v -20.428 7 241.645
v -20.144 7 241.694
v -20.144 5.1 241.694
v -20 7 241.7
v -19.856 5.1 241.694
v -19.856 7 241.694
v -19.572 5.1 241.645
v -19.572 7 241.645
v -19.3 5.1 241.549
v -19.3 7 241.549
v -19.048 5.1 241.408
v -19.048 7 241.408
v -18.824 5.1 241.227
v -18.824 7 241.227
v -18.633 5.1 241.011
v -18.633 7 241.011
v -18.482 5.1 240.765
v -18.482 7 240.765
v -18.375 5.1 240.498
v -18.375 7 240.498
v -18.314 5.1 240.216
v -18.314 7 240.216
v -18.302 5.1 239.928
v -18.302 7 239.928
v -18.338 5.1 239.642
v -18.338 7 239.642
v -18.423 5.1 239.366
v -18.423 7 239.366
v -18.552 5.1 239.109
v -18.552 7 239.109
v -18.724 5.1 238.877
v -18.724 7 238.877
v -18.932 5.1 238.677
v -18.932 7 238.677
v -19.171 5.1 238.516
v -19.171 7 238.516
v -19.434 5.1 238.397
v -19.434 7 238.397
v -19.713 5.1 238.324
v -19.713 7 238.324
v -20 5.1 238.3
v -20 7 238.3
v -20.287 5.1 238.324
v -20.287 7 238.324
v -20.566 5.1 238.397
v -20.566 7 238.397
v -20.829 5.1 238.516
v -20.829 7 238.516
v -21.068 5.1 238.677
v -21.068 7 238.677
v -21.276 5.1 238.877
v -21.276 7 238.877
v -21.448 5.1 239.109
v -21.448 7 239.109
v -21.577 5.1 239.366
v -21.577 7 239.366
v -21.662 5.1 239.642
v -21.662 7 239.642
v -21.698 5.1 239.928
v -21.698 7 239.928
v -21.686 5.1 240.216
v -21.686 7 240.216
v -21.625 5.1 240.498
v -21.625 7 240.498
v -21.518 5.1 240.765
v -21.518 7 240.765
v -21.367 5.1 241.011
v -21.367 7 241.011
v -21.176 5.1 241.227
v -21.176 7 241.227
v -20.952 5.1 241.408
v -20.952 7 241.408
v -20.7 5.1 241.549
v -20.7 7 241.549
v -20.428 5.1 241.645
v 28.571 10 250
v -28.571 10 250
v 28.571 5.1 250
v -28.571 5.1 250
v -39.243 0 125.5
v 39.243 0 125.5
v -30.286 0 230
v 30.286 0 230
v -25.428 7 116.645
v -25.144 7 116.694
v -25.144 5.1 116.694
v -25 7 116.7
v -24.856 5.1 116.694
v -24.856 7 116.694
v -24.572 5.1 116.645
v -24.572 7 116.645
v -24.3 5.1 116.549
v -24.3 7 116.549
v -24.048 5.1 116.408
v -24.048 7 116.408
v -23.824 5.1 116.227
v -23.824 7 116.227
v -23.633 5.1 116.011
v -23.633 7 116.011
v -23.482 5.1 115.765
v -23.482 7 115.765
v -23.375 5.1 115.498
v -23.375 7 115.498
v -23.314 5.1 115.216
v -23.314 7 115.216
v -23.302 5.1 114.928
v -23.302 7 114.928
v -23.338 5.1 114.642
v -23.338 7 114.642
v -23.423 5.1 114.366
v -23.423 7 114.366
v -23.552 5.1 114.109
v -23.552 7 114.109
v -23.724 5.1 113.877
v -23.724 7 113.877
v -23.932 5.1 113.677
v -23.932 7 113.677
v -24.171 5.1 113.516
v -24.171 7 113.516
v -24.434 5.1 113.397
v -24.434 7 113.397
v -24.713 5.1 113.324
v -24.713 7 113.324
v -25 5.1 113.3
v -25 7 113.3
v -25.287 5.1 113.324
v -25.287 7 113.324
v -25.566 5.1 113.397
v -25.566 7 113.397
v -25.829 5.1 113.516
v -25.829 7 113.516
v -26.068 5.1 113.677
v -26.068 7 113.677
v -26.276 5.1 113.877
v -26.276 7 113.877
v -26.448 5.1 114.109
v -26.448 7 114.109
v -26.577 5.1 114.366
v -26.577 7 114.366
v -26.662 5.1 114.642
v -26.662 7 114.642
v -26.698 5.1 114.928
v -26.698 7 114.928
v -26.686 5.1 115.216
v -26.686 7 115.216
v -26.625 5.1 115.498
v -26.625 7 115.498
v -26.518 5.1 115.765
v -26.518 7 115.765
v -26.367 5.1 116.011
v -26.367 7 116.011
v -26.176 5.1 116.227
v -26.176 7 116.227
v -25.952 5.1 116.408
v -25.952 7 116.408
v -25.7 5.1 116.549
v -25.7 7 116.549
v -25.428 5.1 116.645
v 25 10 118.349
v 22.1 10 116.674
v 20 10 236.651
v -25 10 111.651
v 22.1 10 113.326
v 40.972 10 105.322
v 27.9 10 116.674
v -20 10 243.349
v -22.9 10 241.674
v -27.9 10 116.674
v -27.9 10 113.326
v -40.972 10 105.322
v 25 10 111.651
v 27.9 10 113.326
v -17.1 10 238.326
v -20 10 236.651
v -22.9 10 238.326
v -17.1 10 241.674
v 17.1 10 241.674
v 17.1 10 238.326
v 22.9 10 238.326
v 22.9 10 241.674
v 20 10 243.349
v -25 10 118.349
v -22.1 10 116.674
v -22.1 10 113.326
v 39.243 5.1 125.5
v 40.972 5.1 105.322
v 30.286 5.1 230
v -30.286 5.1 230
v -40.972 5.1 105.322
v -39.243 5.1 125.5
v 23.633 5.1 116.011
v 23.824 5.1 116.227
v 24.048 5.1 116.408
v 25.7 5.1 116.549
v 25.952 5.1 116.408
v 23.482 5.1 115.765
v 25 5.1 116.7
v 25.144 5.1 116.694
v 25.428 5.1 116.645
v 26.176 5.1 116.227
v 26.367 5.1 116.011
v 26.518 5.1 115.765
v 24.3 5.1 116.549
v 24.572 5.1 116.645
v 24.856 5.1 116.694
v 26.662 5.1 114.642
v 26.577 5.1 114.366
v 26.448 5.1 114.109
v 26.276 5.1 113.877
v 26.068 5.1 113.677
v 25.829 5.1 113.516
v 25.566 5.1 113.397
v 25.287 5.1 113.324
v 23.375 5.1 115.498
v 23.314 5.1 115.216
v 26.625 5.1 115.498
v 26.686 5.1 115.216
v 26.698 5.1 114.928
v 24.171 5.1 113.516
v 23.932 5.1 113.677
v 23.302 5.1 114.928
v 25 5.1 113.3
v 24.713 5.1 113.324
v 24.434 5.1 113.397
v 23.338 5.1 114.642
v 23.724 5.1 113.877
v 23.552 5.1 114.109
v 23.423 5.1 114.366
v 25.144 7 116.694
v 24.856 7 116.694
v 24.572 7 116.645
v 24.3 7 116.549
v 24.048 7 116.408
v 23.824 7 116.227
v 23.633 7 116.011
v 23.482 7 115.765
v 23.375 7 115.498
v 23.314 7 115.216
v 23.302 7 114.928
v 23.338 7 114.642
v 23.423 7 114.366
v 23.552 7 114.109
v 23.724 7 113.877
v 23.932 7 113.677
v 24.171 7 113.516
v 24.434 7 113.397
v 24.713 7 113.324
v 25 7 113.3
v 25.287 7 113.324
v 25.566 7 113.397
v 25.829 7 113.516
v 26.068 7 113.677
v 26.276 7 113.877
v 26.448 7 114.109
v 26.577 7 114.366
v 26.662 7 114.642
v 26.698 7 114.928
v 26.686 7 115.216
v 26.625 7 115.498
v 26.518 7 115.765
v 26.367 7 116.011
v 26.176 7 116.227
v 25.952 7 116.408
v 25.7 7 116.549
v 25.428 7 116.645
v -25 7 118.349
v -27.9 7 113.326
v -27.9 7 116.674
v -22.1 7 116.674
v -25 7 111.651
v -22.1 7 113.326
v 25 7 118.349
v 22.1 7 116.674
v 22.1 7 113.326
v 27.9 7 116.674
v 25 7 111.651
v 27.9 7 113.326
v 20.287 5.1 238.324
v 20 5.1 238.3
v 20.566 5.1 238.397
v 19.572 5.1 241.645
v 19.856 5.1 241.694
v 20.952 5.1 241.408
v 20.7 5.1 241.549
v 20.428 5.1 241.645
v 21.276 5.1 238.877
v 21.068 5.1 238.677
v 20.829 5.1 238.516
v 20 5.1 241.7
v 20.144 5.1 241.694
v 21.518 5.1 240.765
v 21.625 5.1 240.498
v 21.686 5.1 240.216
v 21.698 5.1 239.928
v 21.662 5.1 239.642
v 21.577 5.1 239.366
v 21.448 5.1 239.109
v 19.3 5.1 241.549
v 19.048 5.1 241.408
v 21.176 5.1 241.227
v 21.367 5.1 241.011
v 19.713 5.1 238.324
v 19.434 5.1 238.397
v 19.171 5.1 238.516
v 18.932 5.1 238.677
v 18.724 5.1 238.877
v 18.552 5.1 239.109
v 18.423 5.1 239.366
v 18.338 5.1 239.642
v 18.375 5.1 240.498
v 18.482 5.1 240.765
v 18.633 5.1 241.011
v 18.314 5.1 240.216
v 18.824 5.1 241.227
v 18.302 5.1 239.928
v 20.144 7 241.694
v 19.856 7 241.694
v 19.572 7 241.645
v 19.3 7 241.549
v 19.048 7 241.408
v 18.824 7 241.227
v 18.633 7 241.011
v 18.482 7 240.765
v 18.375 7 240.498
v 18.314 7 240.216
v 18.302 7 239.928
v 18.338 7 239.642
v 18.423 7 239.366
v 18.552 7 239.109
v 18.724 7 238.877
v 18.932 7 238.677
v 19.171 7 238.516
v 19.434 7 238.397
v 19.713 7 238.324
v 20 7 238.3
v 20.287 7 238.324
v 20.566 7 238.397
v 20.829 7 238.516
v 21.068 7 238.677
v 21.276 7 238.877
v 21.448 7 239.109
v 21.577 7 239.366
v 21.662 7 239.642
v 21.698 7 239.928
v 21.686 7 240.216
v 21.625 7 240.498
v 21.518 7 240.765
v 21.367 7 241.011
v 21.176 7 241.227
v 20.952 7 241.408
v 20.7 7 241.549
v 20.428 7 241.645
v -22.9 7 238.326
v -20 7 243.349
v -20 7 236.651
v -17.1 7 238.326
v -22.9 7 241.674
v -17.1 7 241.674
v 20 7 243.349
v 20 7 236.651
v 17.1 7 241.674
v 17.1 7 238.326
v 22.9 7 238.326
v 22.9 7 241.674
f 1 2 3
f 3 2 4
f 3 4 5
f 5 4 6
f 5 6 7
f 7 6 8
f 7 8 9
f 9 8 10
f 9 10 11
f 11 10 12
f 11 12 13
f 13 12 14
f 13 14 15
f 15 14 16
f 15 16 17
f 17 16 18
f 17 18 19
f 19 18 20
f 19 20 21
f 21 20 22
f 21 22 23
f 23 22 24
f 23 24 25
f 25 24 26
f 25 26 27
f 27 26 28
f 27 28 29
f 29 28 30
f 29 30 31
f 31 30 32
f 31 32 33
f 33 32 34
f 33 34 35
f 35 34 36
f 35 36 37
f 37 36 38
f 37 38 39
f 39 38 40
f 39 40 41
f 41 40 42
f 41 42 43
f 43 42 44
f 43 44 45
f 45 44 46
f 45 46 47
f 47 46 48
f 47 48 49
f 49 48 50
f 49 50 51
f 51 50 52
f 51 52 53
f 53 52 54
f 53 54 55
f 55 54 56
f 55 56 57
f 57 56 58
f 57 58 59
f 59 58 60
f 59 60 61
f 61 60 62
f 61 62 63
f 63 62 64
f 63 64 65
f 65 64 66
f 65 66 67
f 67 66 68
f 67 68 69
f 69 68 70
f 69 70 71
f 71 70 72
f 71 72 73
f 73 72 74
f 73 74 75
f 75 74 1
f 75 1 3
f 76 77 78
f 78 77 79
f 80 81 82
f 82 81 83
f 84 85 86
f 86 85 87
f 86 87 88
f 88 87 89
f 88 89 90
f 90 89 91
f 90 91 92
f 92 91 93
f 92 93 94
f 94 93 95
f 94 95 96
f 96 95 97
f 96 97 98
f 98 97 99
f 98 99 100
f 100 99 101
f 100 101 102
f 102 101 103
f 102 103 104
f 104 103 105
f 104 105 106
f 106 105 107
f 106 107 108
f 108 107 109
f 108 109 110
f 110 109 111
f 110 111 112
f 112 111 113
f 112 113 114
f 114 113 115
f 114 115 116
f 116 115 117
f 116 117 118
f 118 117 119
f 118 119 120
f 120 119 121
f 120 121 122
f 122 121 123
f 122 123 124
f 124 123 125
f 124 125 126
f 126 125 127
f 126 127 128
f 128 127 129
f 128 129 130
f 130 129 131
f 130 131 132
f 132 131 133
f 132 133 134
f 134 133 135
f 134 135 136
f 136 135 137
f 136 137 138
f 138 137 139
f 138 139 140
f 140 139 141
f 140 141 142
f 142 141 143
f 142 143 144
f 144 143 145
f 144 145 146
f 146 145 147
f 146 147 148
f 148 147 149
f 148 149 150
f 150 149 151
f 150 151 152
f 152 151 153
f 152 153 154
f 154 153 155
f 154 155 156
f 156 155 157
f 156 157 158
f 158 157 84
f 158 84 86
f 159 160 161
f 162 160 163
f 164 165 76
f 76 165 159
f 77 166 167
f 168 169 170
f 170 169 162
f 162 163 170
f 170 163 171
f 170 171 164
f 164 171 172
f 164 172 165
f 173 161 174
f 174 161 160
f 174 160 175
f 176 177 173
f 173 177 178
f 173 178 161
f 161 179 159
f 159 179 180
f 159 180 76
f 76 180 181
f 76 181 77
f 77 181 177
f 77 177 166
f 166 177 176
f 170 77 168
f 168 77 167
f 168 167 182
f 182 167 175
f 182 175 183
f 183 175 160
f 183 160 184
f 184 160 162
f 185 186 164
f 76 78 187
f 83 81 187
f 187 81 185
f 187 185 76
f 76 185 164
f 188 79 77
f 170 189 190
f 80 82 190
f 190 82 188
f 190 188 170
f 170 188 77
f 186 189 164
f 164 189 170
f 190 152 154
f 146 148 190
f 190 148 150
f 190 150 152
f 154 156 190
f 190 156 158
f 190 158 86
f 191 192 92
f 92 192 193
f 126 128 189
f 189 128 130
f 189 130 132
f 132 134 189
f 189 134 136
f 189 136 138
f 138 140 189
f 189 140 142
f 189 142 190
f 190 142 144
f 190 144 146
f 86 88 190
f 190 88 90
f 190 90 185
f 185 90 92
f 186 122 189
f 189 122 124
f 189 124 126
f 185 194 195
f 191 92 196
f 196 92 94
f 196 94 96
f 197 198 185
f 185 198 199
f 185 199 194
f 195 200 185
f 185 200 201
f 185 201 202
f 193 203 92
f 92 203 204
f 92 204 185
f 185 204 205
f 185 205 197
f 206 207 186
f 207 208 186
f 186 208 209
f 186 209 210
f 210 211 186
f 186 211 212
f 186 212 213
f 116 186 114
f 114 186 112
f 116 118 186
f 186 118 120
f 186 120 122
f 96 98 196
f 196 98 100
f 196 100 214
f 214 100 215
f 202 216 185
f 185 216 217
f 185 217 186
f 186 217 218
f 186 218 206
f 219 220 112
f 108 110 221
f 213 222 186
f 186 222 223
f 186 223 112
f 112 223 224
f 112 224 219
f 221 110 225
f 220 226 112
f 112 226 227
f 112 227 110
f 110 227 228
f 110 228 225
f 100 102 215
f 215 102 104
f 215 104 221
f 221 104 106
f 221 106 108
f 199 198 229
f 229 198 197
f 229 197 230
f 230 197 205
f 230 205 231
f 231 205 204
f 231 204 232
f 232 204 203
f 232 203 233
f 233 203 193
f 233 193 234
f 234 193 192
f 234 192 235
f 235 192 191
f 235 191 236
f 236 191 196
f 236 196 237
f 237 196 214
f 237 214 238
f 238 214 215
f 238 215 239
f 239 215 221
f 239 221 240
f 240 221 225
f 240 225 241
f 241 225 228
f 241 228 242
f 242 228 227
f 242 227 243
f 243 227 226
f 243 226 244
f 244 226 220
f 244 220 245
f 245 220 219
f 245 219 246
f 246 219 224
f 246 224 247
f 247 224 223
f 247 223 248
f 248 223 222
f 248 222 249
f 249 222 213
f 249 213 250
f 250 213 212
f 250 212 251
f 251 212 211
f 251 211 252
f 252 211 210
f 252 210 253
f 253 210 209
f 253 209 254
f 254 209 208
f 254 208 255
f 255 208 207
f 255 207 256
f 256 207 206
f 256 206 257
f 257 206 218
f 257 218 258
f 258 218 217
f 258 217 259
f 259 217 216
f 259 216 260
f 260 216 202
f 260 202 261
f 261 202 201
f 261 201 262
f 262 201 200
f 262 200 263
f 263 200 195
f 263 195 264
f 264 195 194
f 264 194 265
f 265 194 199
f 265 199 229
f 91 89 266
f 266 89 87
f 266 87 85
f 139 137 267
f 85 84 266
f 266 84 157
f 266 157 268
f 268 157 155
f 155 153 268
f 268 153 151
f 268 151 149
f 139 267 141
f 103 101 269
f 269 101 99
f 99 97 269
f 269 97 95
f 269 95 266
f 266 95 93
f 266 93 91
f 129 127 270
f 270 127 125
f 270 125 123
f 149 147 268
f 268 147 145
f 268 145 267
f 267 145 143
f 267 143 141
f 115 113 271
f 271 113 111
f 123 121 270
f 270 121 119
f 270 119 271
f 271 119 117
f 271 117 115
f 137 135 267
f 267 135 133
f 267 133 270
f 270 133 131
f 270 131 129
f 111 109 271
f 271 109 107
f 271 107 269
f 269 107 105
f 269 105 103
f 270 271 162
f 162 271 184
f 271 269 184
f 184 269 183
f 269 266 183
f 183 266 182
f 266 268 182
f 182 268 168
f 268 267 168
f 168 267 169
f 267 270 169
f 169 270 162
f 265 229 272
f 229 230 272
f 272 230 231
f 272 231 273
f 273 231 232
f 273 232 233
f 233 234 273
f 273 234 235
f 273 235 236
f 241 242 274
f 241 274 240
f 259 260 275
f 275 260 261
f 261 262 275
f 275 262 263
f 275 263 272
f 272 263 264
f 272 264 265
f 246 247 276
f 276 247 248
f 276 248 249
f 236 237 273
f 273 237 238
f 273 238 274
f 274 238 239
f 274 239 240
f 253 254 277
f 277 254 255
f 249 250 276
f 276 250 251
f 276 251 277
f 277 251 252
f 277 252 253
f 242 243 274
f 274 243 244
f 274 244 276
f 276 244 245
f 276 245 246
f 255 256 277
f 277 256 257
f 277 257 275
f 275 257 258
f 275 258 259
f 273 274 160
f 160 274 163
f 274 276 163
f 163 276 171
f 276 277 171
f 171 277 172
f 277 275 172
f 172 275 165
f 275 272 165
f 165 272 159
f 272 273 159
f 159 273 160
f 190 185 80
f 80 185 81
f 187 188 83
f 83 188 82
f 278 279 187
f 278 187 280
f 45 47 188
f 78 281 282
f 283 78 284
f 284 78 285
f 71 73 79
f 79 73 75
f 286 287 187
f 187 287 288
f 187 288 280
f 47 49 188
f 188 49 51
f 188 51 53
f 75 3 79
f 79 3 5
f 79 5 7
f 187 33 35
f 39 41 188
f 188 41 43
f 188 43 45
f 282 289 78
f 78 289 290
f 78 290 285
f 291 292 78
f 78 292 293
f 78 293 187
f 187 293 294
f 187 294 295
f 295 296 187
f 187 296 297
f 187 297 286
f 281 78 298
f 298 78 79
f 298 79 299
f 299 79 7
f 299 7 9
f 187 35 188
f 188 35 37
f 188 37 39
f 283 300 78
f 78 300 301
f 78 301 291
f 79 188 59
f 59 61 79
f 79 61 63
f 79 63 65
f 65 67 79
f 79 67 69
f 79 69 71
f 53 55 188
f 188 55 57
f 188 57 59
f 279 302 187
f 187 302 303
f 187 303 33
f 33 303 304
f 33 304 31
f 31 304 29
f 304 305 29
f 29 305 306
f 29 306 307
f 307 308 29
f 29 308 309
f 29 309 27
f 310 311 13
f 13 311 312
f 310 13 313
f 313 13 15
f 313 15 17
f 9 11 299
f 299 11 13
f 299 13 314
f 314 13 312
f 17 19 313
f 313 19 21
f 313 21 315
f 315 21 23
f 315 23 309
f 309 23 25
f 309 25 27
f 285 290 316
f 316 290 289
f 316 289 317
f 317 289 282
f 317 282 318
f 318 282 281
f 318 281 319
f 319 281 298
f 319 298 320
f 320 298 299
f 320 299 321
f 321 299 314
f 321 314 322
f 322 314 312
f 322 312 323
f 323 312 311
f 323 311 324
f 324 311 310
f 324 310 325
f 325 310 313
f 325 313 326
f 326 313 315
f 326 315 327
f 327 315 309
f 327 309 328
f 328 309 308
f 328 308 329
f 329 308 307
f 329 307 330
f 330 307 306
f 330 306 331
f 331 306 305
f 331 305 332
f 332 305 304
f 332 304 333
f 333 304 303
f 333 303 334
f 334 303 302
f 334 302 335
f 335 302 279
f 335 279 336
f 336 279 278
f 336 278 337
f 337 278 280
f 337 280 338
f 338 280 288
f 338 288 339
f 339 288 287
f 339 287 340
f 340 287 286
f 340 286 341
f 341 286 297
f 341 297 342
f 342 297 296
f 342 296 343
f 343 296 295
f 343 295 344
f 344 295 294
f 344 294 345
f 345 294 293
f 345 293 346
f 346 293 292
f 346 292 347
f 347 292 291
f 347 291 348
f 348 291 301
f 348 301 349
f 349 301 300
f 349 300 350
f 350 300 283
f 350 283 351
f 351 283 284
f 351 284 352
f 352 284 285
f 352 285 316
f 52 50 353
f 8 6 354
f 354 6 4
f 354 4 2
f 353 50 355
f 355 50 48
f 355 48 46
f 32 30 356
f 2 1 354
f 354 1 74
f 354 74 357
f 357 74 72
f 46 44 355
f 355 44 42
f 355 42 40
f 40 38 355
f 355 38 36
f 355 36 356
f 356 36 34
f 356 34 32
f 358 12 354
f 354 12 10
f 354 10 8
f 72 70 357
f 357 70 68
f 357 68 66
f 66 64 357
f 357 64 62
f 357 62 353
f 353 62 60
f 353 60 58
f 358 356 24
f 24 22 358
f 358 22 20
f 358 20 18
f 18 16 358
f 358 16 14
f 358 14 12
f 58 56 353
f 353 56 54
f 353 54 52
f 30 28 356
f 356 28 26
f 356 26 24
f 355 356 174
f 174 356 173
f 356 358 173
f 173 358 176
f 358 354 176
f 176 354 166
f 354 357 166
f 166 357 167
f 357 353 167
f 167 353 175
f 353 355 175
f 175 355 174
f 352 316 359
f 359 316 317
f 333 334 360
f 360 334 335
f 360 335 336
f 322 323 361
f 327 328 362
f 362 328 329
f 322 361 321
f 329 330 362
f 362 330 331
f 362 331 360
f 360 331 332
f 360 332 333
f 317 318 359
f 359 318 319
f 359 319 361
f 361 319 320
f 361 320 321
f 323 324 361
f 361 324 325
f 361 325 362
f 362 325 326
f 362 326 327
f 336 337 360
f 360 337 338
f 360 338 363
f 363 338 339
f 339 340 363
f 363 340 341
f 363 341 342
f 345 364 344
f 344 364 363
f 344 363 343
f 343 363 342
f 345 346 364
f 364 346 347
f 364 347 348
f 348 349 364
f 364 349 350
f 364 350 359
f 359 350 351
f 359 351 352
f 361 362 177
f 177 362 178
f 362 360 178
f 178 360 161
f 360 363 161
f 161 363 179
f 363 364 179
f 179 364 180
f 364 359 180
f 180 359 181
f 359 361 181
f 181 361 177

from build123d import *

# Parameters (mm, degrees)
SKETCH1_R           = 50
BOSS_EXTRUDE1_DEPTH = 10
SKETCH2_R           = 20
CUT_EXTRUDE1_DEPTH  = 5
CUT_EXTRUDE6_DEPTH  = 3
SKETCH8_R           = 1.7
CUT_EXTRUDE7_DEPTH  = 10
BOSS_EXTRUDE3_DEPTH = 10
SKETCH10_W          = 21
SKETCH10_H          = 41
CUT_EXTRUDE8_DEPTH  = 10
SKETCH11_W          = 21
SKETCH11_H          = 6.5
CUT_EXTRUDE9_DEPTH  = 1.5
SKETCH12_R          = 1.7
CUT_EXTRUDE10_DEPTH = 9
CUT_EXTRUDE11_DEPTH = 10
SKETCH15_W          = 131.735170003
SKETCH15_H          = 179.266555965
CUT_EXTRUDE12_DEPTH = 79
BOSS_EXTRUDE4_DEPTH = 4.9
SKETCH17_R          = 1.7
CUT_EXTRUDE13_DEPTH = 10
CUT_EXTRUDE14_DEPTH = 3
SKETCH19_W          = 78.571428572
SKETCH19_H          = 5.1
CUT_EXTRUDE15_DEPTH = 0.5
SKETCH20_W          = 92.611657501
SKETCH20_H          = 114.528704683
CUT_EXTRUDE16_DEPTH = 10
CUT_EXTRUDE17_DEPTH = 5.1
SKETCH22_R          = 1.7
CUT_EXTRUDE18_DEPTH = 5.1
CUT_EXTRUDE19_DEPTH = 3


with BuildPart() as part:
    # Sketch1 → Boss-Extrude1 (new body)
    with BuildSketch(Plane(origin=(0, 0, 0), x_dir=(1, 0, 0), z_dir=(0, 1, 0))):
        Circle(SKETCH1_R)
    extrude(amount=BOSS_EXTRUDE1_DEPTH)

    # Sketch2 → Cut-Extrude1 (cut)
    with BuildSketch(Plane(origin=(0, 10, 0), x_dir=(1, 0, 0), z_dir=(0, 1, 0))):
        Circle(SKETCH2_R)
    extrude(amount=-CUT_EXTRUDE1_DEPTH, mode=Mode.SUBTRACT)

    # Sketch7 → Cut-Extrude6 (cut)
    with BuildSketch(Plane.XZ):
        with BuildLine():
            ThreePointArc((-2.85, 14.726761355), (0, 15), (2.85, 14.726761355))
            Line((2.85, 14.726761355), (2.85, 16.645448267))
            Line((2.85, 16.645448267), (0, 18.290896534))
            Line((0, 18.290896534), (-2.85, 16.645448267))
            Line((-2.85, 16.645448267), (-2.85, 14.726761355))
        make_face()
        with BuildLine():
            Line((2.85, 13.354551733), (2.85, 14.726761355))
            ThreePointArc((2.85, 14.726761355), (0, 15), (-2.85, 14.726761355))
            Line((-2.85, 14.726761355), (-2.85, 13.354551733))
            Line((-2.85, 13.354551733), (0, 11.709103466))
            Line((0, 11.709103466), (2.85, 13.354551733))
        make_face()
        Polygon((-12.990381057, -4.209103466), (-15.840381057, -5.854551733), (-15.840381057, -9.145448267), (-12.990381057, -10.790896534), (-10.140381057, -9.145448267), (-10.140381057, -5.854551733), align=None)
        Polygon((15.840381057, -5.854551733), (12.990381057, -4.209103466), (10.140381057, -5.854551733), (10.140381057, -9.145448267), (12.990381057, -10.790896534), (15.840381057, -9.145448267), align=None)
    extrude(amount=-CUT_EXTRUDE6_DEPTH, mode=Mode.SUBTRACT)

    # Sketch8 → Cut-Extrude7 (cut)
    with BuildSketch(Plane.XZ):
        with Locations((0, 15)):
            Circle(SKETCH8_R)
        with Locations((12.990381057, -7.5)):
            Circle(SKETCH8_R)
        with Locations((-12.990381057, -7.5)):
            Circle(SKETCH8_R)
    extrude(amount=-CUT_EXTRUDE7_DEPTH, mode=Mode.SUBTRACT)


with BuildPart() as body_2:
    # Sketch9 → Boss-Extrude3 (new body)
    with BuildSketch(Plane.XZ):
        with BuildLine():
            Line((-50, 350), (-50, 0))
            ThreePointArc((-50, 0), (0, 50), (50, 0))
            Line((50, 0), (50, 350))
            Line((50, 350), (-50, 350))
        make_face()
    extrude(amount=-BOSS_EXTRUDE3_DEPTH)

    # Sketch10 → Cut-Extrude8 (cut)
    with BuildSketch(Plane.XZ):
        with Locations((0, 319.5)):
            Rectangle(SKETCH10_W, SKETCH10_H)
    extrude(amount=-CUT_EXTRUDE8_DEPTH, mode=Mode.SUBTRACT)

    # Sketch11 → Cut-Extrude9 (cut)
    with BuildSketch(Plane.XZ):
        with Locations((0, 343.25)):
            Rectangle(SKETCH11_W, SKETCH11_H)
        with Locations((0, 295.75)):
            Rectangle(SKETCH11_W, SKETCH11_H)
    extrude(amount=-CUT_EXTRUDE9_DEPTH, mode=Mode.SUBTRACT)

    # Sketch12 → Cut-Extrude10 (cut)
    with BuildSketch(Plane.XZ.offset(-1.5)):
        with Locations((-5, 343.75)):
            Circle(SKETCH12_R)
        with Locations((5, 343.75)):
            Circle(SKETCH12_R)
        with Locations((-5, 295.25)):
            Circle(SKETCH12_R)
        with Locations((5, 295.25)):
            Circle(SKETCH12_R)
    extrude(amount=-CUT_EXTRUDE10_DEPTH, mode=Mode.SUBTRACT)

    # Sketch13 → Cut-Extrude11 (cut)
    with BuildSketch(Plane.XZ):
        with BuildLine():
            Line((-50, 350), (-50, 0))
            ThreePointArc((-50, 0), (-49.817332452, 4.270057067), (-49.270664506, 8.5089141))
            Line((-49.270664506, 8.5089141), (-20, 350))
            Line((-20, 350), (-50, 350))
        make_face()
        with BuildLine():
            Line((20, 350), (49.270664506, 8.5089141))
            ThreePointArc((49.270664506, 8.5089141), (49.817332452, 4.270057067), (50, 0))
            Line((50, 0), (50, 350))
            Line((50, 350), (20, 350))
        make_face()
    extrude(amount=-CUT_EXTRUDE11_DEPTH, mode=Mode.SUBTRACT)


with BuildPart() as cut_extrude12_tool:
    # Sketch15 → Cut-Extrude12 (new body)
    with BuildSketch(Plane(origin=(0, 10, 0), x_dir=(1, 0, 0), z_dir=(0, 1, 0))):
        with Locations((-8.166136658, -35.366722018)):
            Rectangle(SKETCH15_W, SKETCH15_H)
    extrude(amount=-CUT_EXTRUDE12_DEPTH)


with BuildPart() as part_1:
    add(part.part)

    # Cut-Extrude12: cut by cut_extrude12_tool
    add(cut_extrude12_tool.part, mode=Mode.SUBTRACT)


with BuildPart() as body_2_1:
    add(body_2.part)

    # Cut-Extrude12: cut by cut_extrude12_tool
    add(cut_extrude12_tool.part, mode=Mode.SUBTRACT)

    # Sketch16 → Boss-Extrude4 (add)
    with BuildSketch(Plane(origin=(0, 10, 0), x_dir=(1, 0, 0), z_dir=(0, 1, 0))):
        Polygon((40.972386827, -105.322153681), (-40.972386827, -105.322153681), (-39.285714286, -125), (39.285714286, -125), align=None)
    extrude(amount=-BOSS_EXTRUDE4_DEPTH)

    # Sketch17 → Cut-Extrude13 (cut)
    with BuildSketch(Plane.XZ.offset(-5.1)):
        with Locations((-25, 115)):
            Circle(SKETCH17_R)
        with Locations((25, 115)):
            Circle(SKETCH17_R)
    extrude(amount=-CUT_EXTRUDE13_DEPTH, mode=Mode.SUBTRACT)

    # Sketch18 → Cut-Extrude14 (cut)
    with BuildSketch(Plane(origin=(0, 10, 0), x_dir=(1, 0, 0), z_dir=(0, 1, 0))):
        Polygon((-25, -111.651368439), (-27.9, -113.325684219), (-27.9, -116.674315781), (-25, -118.348631561), (-22.1, -116.674315781), (-22.1, -113.325684219), align=None)
        Polygon((22.1, -113.325684219), (25, -111.651368439), (27.9, -113.325684219), (27.9, -116.674315781), (25, -118.348631561), (22.1, -116.674315781), align=None)
    extrude(amount=-CUT_EXTRUDE14_DEPTH, mode=Mode.SUBTRACT)

    # Sketch19 → Cut-Extrude15 (cut)
    with BuildSketch(Plane(origin=(0, 0, 125), x_dir=(-1, 0, 0), z_dir=(0, 0, -1))):
        with Locations((0, 2.55)):
            Rectangle(SKETCH19_W, SKETCH19_H)
    extrude(amount=-CUT_EXTRUDE15_DEPTH, mode=Mode.SUBTRACT)

    # Sketch20 → Cut-Extrude16 (cut)
    with BuildSketch(Plane.XZ):
        with Locations((0.685731612, 307.264352342)):
            Rectangle(SKETCH20_W, SKETCH20_H)
    extrude(amount=-CUT_EXTRUDE16_DEPTH, mode=Mode.SUBTRACT)

    # Sketch21 → Cut-Extrude17 (cut)
    with BuildSketch(Plane.XZ):
        Polygon((-28.571428571, 250), (-30.285714286, 230), (30.285714286, 230), (28.571428571, 250), align=None)
    extrude(amount=-CUT_EXTRUDE17_DEPTH, mode=Mode.SUBTRACT)

    # Sketch22 → Cut-Extrude18 (cut)
    with BuildSketch(Plane.XZ.offset(-5.1)):
        with Locations((-20, 240)):
            Circle(SKETCH22_R)
        with Locations((20, 240)):
            Circle(SKETCH22_R)
    extrude(amount=-CUT_EXTRUDE18_DEPTH, mode=Mode.SUBTRACT)

    # Sketch23 → Cut-Extrude19 (cut)
    with BuildSketch(Plane(origin=(0, 10, 0), x_dir=(1, 0, 0), z_dir=(0, 1, 0))):
        Polygon((-20, -236.651368439), (-22.9, -238.325684219), (-22.9, -241.674315781), (-20, -243.348631561), (-17.1, -241.674315781), (-17.1, -238.325684219), align=None)
        Polygon((17.1, -238.325684219), (20, -236.651368439), (22.9, -238.325684219), (22.9, -241.674315781), (20, -243.348631561), (17.1, -241.674315781), align=None)
    extrude(amount=-CUT_EXTRUDE19_DEPTH, mode=Mode.SUBTRACT)


solid = body_2_1.part
